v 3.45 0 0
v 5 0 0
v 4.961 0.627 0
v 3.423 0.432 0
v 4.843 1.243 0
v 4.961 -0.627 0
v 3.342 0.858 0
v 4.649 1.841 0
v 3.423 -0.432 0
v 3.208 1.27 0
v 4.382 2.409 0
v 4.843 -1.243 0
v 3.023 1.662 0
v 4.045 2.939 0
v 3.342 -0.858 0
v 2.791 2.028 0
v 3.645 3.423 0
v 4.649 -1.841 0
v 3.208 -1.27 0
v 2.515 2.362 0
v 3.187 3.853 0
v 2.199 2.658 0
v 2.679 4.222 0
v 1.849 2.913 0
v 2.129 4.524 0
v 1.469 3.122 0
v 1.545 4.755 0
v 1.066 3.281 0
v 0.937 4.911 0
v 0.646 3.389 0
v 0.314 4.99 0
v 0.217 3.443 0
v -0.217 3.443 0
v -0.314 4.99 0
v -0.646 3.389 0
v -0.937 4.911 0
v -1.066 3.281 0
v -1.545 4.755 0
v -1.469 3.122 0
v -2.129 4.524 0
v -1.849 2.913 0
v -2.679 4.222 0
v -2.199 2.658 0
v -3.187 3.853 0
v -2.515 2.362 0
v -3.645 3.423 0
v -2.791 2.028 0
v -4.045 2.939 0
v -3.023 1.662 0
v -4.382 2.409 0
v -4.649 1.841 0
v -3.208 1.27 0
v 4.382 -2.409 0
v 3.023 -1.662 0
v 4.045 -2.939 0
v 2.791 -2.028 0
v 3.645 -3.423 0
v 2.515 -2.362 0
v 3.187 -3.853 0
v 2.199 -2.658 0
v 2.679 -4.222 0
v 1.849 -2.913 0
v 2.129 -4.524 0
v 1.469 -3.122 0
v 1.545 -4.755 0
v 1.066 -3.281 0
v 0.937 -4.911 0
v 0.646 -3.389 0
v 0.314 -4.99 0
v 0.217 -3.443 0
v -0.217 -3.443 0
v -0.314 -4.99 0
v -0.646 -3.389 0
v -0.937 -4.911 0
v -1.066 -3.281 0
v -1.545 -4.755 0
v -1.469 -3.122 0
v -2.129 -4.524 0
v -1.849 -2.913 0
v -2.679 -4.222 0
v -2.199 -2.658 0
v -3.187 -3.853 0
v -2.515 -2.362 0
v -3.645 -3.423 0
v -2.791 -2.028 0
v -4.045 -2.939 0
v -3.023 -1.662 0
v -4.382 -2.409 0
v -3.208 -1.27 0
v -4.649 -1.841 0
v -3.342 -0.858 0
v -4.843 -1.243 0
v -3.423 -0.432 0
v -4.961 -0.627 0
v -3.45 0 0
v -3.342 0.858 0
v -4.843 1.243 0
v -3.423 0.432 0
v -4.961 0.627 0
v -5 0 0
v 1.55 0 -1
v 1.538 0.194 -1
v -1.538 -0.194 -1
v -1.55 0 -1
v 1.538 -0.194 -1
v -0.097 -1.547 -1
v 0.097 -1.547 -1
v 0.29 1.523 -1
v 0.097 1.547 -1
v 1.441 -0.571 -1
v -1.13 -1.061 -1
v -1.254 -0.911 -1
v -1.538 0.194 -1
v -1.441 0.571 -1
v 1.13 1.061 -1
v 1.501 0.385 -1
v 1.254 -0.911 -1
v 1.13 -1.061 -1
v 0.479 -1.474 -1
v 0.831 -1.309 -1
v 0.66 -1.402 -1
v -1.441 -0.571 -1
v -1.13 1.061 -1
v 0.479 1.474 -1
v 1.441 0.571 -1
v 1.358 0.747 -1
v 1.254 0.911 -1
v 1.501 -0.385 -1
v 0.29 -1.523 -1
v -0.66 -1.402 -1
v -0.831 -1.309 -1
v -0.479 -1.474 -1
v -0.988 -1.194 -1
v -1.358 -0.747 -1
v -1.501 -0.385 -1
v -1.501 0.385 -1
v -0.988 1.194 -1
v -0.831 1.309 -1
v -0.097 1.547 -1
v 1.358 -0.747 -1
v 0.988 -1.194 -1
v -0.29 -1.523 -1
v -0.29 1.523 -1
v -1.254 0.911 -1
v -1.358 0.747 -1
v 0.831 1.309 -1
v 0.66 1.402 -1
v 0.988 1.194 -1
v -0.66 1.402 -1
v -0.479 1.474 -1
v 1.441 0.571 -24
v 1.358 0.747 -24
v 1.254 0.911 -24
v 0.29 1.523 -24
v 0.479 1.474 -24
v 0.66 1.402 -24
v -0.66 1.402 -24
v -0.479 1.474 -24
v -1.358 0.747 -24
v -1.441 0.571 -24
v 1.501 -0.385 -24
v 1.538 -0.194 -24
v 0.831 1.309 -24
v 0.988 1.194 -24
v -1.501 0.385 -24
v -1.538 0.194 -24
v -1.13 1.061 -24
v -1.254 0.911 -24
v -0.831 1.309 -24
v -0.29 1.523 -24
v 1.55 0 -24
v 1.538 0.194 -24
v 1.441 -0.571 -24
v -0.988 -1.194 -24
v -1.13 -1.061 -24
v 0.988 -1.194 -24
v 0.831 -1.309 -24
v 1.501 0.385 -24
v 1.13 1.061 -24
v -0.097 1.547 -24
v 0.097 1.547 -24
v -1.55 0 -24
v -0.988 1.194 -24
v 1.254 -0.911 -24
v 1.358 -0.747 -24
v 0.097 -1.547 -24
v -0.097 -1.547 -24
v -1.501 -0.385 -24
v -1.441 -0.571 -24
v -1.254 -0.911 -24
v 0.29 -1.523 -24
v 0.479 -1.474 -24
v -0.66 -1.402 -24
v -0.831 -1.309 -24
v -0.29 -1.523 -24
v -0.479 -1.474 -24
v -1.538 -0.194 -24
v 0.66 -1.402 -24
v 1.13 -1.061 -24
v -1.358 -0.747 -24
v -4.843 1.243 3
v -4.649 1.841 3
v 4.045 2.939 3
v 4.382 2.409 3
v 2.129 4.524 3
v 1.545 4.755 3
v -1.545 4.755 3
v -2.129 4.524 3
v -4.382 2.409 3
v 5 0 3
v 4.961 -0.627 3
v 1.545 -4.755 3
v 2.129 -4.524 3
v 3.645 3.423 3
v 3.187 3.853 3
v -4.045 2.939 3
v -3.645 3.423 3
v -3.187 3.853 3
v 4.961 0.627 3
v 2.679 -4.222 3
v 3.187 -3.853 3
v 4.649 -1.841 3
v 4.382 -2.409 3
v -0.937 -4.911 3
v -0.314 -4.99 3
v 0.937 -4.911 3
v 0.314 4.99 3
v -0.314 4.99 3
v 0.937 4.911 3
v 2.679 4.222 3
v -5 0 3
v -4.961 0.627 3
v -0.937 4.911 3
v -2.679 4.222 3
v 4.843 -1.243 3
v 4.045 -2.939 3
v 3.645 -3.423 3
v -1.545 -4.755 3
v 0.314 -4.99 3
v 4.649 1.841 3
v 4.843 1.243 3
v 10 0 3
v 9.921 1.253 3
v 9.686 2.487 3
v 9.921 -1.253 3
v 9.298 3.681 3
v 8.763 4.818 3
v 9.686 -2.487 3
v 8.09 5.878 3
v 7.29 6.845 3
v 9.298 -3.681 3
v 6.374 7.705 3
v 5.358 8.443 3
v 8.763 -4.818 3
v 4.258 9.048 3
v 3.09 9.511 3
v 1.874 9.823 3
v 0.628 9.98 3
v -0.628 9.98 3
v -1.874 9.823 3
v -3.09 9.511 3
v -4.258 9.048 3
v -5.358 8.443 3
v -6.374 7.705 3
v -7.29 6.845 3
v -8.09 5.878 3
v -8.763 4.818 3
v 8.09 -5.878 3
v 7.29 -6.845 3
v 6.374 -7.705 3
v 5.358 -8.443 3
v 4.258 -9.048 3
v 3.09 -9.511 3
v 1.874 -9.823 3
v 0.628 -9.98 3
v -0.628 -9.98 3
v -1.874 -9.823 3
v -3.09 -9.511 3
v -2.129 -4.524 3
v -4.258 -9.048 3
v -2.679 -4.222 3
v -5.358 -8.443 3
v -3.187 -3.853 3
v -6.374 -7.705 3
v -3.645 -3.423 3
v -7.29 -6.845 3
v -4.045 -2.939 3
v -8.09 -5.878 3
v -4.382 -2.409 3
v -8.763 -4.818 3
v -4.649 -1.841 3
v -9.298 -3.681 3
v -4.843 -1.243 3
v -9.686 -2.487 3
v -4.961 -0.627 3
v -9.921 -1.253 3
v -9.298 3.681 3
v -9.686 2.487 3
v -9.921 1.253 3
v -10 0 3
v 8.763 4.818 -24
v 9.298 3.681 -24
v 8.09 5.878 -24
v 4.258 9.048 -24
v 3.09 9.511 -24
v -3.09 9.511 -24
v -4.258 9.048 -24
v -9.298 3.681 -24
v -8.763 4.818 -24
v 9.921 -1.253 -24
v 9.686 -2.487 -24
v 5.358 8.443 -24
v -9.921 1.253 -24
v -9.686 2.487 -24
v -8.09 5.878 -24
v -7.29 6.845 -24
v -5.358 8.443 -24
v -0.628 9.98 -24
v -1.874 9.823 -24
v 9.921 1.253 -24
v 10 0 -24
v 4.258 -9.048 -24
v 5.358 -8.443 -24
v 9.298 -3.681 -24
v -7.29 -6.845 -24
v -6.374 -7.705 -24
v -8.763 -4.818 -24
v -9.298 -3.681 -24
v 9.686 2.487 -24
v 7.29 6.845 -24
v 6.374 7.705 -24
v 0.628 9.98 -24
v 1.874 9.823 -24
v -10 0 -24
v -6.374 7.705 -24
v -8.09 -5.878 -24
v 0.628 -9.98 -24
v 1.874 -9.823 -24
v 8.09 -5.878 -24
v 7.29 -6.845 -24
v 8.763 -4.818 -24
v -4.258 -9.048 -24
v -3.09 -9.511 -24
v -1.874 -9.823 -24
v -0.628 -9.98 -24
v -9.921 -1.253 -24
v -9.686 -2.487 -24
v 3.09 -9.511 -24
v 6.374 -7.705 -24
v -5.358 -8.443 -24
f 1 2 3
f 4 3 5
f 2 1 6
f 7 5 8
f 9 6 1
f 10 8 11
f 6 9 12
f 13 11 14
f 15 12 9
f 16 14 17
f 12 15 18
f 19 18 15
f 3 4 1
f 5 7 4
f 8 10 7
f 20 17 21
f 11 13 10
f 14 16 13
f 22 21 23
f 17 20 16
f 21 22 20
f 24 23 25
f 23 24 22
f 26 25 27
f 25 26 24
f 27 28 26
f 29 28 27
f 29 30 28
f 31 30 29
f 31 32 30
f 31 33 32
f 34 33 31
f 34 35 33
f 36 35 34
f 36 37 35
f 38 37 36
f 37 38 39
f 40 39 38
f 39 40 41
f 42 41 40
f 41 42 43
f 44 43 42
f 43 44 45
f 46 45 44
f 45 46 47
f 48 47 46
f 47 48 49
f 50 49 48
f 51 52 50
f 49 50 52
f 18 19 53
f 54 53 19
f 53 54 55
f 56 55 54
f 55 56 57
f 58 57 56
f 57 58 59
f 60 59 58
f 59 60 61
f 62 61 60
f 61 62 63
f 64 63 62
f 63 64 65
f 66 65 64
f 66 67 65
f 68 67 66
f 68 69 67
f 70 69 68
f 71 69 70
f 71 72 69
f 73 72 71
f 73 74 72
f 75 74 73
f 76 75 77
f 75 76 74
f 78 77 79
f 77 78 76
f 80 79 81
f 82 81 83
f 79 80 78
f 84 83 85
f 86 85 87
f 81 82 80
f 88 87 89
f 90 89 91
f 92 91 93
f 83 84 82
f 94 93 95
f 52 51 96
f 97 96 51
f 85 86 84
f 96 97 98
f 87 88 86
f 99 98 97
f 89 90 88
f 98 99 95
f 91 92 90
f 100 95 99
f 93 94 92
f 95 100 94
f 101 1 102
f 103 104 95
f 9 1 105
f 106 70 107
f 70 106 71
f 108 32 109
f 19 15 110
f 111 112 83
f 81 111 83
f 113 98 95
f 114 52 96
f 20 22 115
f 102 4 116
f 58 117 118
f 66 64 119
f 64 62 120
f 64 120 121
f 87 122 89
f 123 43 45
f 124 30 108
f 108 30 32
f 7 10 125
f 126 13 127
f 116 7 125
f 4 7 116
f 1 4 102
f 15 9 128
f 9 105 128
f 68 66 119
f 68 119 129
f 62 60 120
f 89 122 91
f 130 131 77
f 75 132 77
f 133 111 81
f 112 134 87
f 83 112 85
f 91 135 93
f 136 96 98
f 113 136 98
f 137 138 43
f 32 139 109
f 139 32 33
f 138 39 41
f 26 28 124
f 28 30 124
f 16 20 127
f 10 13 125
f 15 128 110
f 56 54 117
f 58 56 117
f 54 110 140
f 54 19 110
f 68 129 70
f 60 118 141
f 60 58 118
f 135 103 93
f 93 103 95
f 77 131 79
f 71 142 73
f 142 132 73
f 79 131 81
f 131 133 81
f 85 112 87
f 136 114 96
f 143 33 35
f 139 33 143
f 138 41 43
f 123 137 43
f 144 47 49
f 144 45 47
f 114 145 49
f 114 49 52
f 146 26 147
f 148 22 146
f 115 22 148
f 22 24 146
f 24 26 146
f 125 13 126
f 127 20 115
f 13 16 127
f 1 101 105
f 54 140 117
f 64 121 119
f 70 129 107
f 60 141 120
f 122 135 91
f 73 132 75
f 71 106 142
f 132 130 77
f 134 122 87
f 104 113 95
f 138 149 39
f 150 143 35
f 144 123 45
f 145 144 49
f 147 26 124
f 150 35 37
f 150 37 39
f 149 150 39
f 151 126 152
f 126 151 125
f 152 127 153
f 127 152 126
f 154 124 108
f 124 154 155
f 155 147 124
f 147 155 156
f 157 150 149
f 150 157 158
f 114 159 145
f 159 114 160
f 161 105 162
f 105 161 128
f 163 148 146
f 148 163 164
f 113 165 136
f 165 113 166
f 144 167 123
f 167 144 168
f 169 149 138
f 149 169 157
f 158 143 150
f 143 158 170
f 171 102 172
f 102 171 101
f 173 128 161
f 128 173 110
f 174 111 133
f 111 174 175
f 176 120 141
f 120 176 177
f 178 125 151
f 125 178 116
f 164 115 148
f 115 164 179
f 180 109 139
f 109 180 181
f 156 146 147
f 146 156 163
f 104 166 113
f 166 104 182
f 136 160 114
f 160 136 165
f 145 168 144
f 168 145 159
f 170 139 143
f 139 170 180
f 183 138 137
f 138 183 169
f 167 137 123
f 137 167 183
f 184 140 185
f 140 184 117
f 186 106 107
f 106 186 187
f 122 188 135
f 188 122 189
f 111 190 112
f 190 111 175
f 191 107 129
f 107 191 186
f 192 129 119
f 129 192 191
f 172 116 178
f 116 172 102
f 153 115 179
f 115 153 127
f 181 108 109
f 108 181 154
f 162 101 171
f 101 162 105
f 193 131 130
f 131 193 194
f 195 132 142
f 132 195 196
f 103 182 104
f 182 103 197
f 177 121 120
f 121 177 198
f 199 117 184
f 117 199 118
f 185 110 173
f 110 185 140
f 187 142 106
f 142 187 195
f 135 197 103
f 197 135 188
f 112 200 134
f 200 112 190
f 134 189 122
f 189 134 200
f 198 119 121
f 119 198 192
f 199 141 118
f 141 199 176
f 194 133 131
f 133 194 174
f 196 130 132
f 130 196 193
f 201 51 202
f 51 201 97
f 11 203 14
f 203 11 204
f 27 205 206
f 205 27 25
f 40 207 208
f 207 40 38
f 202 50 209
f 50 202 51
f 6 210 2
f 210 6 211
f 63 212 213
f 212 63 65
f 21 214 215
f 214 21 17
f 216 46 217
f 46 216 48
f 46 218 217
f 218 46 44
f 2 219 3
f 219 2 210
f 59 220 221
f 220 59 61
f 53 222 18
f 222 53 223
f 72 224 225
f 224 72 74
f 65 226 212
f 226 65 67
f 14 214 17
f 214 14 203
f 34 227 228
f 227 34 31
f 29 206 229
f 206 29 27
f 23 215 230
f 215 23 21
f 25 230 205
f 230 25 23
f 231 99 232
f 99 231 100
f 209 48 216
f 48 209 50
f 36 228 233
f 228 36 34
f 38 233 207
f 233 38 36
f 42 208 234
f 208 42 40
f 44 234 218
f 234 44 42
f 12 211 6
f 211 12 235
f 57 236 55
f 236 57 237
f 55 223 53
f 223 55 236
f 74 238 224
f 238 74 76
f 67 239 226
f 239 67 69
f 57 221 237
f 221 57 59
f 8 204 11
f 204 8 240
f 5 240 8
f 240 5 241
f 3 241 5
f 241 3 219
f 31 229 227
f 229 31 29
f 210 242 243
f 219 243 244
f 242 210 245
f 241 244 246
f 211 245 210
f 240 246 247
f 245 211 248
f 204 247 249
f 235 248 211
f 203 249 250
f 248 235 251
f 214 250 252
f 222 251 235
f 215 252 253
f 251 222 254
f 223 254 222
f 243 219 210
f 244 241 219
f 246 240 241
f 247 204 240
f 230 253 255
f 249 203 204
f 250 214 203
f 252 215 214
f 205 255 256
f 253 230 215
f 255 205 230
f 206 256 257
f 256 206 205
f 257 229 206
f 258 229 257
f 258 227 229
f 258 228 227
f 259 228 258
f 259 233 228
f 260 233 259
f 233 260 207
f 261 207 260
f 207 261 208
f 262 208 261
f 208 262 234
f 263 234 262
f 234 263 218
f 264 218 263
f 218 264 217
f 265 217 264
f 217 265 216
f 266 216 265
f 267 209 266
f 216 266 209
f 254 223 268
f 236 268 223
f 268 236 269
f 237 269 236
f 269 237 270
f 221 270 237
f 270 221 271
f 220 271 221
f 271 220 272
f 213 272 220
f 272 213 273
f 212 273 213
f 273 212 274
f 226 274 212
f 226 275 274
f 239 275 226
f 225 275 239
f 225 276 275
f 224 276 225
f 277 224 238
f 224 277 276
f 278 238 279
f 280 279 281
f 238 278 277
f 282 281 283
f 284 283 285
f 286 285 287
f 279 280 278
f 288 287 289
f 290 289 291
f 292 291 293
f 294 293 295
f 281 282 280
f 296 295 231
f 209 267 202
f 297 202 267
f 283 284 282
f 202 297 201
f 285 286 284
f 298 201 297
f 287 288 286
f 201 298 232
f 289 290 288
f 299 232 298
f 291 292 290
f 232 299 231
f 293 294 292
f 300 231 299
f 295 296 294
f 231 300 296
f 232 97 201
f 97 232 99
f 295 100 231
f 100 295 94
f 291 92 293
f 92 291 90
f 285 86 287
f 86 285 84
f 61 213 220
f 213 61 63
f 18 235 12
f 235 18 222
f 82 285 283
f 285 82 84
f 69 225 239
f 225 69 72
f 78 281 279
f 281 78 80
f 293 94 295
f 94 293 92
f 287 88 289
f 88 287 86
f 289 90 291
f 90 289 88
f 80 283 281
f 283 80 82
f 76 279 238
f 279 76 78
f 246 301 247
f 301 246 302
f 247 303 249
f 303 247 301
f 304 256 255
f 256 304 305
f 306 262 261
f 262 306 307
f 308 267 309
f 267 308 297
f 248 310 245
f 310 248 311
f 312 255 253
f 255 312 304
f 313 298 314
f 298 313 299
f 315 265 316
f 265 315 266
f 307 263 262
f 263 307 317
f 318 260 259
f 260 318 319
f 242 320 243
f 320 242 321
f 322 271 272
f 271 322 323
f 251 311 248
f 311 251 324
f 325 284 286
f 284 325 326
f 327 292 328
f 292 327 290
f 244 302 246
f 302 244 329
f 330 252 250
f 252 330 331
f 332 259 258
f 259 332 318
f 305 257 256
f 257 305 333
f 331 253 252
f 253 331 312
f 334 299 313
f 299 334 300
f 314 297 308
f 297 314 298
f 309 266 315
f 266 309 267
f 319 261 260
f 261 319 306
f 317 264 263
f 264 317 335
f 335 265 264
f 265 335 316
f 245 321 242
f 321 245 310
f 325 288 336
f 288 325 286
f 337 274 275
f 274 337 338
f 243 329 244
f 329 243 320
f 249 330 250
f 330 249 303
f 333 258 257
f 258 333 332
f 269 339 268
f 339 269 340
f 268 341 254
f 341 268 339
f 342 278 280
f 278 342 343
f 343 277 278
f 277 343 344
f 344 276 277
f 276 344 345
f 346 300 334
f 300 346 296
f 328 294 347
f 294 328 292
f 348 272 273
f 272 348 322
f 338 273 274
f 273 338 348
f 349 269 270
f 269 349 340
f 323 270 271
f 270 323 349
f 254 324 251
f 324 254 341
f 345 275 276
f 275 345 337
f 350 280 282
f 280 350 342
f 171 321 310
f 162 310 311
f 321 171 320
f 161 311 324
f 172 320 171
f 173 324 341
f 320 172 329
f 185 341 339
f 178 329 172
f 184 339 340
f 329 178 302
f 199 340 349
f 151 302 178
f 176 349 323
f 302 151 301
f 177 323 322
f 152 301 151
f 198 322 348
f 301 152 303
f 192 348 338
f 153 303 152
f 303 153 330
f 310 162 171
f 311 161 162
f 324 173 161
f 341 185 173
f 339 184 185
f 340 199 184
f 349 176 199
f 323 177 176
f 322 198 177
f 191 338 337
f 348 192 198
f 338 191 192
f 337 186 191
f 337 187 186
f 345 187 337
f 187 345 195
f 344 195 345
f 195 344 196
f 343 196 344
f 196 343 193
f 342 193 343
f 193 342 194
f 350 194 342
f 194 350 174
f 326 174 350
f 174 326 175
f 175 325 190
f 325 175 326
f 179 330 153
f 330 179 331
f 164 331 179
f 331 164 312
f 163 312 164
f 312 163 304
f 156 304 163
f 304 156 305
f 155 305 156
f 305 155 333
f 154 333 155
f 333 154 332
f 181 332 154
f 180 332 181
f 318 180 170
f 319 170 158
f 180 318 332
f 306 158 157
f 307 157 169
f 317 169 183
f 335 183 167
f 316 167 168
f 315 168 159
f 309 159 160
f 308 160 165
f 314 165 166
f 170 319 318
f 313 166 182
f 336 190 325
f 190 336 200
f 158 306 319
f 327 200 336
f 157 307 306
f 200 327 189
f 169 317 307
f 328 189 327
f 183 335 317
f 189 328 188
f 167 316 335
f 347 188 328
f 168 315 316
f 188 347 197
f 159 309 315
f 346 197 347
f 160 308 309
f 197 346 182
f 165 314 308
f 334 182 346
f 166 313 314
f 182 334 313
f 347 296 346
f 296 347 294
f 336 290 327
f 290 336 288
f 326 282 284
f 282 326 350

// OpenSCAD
$fn = 50;


difference() {
	union() {
		translate(v = [0, 0, -24.0000000000]) {
			cylinder(h = 27, r = 10.0000000000);
		}
	}
	union() {
		translate(v = [0, 0, 0]) {
			rotate(a = [0, 0, 0]) {
				difference() {
					union() {
						translate(v = [0, 0, -27.0000000000]) {
							cylinder(h = 27, r = 1.2500000000);
						}
						translate(v = [0, 0, -1.0000000000]) {
							cylinder(h = 1.0000000000, r1 = 1.5500000000, r2 = 3.4500000000);
						}
						translate(v = [0, 0, -27.0000000000]) {
							cylinder(h = 27, r = 1.5500000000);
						}
						translate(v = [0, 0, -27.0000000000]) {
							cylinder(h = 27, r = 1.2500000000);
						}
					}
					union();
				}
			}
		}
		#cylinder(h = 3, r = 5.0000000000);
	}
}
